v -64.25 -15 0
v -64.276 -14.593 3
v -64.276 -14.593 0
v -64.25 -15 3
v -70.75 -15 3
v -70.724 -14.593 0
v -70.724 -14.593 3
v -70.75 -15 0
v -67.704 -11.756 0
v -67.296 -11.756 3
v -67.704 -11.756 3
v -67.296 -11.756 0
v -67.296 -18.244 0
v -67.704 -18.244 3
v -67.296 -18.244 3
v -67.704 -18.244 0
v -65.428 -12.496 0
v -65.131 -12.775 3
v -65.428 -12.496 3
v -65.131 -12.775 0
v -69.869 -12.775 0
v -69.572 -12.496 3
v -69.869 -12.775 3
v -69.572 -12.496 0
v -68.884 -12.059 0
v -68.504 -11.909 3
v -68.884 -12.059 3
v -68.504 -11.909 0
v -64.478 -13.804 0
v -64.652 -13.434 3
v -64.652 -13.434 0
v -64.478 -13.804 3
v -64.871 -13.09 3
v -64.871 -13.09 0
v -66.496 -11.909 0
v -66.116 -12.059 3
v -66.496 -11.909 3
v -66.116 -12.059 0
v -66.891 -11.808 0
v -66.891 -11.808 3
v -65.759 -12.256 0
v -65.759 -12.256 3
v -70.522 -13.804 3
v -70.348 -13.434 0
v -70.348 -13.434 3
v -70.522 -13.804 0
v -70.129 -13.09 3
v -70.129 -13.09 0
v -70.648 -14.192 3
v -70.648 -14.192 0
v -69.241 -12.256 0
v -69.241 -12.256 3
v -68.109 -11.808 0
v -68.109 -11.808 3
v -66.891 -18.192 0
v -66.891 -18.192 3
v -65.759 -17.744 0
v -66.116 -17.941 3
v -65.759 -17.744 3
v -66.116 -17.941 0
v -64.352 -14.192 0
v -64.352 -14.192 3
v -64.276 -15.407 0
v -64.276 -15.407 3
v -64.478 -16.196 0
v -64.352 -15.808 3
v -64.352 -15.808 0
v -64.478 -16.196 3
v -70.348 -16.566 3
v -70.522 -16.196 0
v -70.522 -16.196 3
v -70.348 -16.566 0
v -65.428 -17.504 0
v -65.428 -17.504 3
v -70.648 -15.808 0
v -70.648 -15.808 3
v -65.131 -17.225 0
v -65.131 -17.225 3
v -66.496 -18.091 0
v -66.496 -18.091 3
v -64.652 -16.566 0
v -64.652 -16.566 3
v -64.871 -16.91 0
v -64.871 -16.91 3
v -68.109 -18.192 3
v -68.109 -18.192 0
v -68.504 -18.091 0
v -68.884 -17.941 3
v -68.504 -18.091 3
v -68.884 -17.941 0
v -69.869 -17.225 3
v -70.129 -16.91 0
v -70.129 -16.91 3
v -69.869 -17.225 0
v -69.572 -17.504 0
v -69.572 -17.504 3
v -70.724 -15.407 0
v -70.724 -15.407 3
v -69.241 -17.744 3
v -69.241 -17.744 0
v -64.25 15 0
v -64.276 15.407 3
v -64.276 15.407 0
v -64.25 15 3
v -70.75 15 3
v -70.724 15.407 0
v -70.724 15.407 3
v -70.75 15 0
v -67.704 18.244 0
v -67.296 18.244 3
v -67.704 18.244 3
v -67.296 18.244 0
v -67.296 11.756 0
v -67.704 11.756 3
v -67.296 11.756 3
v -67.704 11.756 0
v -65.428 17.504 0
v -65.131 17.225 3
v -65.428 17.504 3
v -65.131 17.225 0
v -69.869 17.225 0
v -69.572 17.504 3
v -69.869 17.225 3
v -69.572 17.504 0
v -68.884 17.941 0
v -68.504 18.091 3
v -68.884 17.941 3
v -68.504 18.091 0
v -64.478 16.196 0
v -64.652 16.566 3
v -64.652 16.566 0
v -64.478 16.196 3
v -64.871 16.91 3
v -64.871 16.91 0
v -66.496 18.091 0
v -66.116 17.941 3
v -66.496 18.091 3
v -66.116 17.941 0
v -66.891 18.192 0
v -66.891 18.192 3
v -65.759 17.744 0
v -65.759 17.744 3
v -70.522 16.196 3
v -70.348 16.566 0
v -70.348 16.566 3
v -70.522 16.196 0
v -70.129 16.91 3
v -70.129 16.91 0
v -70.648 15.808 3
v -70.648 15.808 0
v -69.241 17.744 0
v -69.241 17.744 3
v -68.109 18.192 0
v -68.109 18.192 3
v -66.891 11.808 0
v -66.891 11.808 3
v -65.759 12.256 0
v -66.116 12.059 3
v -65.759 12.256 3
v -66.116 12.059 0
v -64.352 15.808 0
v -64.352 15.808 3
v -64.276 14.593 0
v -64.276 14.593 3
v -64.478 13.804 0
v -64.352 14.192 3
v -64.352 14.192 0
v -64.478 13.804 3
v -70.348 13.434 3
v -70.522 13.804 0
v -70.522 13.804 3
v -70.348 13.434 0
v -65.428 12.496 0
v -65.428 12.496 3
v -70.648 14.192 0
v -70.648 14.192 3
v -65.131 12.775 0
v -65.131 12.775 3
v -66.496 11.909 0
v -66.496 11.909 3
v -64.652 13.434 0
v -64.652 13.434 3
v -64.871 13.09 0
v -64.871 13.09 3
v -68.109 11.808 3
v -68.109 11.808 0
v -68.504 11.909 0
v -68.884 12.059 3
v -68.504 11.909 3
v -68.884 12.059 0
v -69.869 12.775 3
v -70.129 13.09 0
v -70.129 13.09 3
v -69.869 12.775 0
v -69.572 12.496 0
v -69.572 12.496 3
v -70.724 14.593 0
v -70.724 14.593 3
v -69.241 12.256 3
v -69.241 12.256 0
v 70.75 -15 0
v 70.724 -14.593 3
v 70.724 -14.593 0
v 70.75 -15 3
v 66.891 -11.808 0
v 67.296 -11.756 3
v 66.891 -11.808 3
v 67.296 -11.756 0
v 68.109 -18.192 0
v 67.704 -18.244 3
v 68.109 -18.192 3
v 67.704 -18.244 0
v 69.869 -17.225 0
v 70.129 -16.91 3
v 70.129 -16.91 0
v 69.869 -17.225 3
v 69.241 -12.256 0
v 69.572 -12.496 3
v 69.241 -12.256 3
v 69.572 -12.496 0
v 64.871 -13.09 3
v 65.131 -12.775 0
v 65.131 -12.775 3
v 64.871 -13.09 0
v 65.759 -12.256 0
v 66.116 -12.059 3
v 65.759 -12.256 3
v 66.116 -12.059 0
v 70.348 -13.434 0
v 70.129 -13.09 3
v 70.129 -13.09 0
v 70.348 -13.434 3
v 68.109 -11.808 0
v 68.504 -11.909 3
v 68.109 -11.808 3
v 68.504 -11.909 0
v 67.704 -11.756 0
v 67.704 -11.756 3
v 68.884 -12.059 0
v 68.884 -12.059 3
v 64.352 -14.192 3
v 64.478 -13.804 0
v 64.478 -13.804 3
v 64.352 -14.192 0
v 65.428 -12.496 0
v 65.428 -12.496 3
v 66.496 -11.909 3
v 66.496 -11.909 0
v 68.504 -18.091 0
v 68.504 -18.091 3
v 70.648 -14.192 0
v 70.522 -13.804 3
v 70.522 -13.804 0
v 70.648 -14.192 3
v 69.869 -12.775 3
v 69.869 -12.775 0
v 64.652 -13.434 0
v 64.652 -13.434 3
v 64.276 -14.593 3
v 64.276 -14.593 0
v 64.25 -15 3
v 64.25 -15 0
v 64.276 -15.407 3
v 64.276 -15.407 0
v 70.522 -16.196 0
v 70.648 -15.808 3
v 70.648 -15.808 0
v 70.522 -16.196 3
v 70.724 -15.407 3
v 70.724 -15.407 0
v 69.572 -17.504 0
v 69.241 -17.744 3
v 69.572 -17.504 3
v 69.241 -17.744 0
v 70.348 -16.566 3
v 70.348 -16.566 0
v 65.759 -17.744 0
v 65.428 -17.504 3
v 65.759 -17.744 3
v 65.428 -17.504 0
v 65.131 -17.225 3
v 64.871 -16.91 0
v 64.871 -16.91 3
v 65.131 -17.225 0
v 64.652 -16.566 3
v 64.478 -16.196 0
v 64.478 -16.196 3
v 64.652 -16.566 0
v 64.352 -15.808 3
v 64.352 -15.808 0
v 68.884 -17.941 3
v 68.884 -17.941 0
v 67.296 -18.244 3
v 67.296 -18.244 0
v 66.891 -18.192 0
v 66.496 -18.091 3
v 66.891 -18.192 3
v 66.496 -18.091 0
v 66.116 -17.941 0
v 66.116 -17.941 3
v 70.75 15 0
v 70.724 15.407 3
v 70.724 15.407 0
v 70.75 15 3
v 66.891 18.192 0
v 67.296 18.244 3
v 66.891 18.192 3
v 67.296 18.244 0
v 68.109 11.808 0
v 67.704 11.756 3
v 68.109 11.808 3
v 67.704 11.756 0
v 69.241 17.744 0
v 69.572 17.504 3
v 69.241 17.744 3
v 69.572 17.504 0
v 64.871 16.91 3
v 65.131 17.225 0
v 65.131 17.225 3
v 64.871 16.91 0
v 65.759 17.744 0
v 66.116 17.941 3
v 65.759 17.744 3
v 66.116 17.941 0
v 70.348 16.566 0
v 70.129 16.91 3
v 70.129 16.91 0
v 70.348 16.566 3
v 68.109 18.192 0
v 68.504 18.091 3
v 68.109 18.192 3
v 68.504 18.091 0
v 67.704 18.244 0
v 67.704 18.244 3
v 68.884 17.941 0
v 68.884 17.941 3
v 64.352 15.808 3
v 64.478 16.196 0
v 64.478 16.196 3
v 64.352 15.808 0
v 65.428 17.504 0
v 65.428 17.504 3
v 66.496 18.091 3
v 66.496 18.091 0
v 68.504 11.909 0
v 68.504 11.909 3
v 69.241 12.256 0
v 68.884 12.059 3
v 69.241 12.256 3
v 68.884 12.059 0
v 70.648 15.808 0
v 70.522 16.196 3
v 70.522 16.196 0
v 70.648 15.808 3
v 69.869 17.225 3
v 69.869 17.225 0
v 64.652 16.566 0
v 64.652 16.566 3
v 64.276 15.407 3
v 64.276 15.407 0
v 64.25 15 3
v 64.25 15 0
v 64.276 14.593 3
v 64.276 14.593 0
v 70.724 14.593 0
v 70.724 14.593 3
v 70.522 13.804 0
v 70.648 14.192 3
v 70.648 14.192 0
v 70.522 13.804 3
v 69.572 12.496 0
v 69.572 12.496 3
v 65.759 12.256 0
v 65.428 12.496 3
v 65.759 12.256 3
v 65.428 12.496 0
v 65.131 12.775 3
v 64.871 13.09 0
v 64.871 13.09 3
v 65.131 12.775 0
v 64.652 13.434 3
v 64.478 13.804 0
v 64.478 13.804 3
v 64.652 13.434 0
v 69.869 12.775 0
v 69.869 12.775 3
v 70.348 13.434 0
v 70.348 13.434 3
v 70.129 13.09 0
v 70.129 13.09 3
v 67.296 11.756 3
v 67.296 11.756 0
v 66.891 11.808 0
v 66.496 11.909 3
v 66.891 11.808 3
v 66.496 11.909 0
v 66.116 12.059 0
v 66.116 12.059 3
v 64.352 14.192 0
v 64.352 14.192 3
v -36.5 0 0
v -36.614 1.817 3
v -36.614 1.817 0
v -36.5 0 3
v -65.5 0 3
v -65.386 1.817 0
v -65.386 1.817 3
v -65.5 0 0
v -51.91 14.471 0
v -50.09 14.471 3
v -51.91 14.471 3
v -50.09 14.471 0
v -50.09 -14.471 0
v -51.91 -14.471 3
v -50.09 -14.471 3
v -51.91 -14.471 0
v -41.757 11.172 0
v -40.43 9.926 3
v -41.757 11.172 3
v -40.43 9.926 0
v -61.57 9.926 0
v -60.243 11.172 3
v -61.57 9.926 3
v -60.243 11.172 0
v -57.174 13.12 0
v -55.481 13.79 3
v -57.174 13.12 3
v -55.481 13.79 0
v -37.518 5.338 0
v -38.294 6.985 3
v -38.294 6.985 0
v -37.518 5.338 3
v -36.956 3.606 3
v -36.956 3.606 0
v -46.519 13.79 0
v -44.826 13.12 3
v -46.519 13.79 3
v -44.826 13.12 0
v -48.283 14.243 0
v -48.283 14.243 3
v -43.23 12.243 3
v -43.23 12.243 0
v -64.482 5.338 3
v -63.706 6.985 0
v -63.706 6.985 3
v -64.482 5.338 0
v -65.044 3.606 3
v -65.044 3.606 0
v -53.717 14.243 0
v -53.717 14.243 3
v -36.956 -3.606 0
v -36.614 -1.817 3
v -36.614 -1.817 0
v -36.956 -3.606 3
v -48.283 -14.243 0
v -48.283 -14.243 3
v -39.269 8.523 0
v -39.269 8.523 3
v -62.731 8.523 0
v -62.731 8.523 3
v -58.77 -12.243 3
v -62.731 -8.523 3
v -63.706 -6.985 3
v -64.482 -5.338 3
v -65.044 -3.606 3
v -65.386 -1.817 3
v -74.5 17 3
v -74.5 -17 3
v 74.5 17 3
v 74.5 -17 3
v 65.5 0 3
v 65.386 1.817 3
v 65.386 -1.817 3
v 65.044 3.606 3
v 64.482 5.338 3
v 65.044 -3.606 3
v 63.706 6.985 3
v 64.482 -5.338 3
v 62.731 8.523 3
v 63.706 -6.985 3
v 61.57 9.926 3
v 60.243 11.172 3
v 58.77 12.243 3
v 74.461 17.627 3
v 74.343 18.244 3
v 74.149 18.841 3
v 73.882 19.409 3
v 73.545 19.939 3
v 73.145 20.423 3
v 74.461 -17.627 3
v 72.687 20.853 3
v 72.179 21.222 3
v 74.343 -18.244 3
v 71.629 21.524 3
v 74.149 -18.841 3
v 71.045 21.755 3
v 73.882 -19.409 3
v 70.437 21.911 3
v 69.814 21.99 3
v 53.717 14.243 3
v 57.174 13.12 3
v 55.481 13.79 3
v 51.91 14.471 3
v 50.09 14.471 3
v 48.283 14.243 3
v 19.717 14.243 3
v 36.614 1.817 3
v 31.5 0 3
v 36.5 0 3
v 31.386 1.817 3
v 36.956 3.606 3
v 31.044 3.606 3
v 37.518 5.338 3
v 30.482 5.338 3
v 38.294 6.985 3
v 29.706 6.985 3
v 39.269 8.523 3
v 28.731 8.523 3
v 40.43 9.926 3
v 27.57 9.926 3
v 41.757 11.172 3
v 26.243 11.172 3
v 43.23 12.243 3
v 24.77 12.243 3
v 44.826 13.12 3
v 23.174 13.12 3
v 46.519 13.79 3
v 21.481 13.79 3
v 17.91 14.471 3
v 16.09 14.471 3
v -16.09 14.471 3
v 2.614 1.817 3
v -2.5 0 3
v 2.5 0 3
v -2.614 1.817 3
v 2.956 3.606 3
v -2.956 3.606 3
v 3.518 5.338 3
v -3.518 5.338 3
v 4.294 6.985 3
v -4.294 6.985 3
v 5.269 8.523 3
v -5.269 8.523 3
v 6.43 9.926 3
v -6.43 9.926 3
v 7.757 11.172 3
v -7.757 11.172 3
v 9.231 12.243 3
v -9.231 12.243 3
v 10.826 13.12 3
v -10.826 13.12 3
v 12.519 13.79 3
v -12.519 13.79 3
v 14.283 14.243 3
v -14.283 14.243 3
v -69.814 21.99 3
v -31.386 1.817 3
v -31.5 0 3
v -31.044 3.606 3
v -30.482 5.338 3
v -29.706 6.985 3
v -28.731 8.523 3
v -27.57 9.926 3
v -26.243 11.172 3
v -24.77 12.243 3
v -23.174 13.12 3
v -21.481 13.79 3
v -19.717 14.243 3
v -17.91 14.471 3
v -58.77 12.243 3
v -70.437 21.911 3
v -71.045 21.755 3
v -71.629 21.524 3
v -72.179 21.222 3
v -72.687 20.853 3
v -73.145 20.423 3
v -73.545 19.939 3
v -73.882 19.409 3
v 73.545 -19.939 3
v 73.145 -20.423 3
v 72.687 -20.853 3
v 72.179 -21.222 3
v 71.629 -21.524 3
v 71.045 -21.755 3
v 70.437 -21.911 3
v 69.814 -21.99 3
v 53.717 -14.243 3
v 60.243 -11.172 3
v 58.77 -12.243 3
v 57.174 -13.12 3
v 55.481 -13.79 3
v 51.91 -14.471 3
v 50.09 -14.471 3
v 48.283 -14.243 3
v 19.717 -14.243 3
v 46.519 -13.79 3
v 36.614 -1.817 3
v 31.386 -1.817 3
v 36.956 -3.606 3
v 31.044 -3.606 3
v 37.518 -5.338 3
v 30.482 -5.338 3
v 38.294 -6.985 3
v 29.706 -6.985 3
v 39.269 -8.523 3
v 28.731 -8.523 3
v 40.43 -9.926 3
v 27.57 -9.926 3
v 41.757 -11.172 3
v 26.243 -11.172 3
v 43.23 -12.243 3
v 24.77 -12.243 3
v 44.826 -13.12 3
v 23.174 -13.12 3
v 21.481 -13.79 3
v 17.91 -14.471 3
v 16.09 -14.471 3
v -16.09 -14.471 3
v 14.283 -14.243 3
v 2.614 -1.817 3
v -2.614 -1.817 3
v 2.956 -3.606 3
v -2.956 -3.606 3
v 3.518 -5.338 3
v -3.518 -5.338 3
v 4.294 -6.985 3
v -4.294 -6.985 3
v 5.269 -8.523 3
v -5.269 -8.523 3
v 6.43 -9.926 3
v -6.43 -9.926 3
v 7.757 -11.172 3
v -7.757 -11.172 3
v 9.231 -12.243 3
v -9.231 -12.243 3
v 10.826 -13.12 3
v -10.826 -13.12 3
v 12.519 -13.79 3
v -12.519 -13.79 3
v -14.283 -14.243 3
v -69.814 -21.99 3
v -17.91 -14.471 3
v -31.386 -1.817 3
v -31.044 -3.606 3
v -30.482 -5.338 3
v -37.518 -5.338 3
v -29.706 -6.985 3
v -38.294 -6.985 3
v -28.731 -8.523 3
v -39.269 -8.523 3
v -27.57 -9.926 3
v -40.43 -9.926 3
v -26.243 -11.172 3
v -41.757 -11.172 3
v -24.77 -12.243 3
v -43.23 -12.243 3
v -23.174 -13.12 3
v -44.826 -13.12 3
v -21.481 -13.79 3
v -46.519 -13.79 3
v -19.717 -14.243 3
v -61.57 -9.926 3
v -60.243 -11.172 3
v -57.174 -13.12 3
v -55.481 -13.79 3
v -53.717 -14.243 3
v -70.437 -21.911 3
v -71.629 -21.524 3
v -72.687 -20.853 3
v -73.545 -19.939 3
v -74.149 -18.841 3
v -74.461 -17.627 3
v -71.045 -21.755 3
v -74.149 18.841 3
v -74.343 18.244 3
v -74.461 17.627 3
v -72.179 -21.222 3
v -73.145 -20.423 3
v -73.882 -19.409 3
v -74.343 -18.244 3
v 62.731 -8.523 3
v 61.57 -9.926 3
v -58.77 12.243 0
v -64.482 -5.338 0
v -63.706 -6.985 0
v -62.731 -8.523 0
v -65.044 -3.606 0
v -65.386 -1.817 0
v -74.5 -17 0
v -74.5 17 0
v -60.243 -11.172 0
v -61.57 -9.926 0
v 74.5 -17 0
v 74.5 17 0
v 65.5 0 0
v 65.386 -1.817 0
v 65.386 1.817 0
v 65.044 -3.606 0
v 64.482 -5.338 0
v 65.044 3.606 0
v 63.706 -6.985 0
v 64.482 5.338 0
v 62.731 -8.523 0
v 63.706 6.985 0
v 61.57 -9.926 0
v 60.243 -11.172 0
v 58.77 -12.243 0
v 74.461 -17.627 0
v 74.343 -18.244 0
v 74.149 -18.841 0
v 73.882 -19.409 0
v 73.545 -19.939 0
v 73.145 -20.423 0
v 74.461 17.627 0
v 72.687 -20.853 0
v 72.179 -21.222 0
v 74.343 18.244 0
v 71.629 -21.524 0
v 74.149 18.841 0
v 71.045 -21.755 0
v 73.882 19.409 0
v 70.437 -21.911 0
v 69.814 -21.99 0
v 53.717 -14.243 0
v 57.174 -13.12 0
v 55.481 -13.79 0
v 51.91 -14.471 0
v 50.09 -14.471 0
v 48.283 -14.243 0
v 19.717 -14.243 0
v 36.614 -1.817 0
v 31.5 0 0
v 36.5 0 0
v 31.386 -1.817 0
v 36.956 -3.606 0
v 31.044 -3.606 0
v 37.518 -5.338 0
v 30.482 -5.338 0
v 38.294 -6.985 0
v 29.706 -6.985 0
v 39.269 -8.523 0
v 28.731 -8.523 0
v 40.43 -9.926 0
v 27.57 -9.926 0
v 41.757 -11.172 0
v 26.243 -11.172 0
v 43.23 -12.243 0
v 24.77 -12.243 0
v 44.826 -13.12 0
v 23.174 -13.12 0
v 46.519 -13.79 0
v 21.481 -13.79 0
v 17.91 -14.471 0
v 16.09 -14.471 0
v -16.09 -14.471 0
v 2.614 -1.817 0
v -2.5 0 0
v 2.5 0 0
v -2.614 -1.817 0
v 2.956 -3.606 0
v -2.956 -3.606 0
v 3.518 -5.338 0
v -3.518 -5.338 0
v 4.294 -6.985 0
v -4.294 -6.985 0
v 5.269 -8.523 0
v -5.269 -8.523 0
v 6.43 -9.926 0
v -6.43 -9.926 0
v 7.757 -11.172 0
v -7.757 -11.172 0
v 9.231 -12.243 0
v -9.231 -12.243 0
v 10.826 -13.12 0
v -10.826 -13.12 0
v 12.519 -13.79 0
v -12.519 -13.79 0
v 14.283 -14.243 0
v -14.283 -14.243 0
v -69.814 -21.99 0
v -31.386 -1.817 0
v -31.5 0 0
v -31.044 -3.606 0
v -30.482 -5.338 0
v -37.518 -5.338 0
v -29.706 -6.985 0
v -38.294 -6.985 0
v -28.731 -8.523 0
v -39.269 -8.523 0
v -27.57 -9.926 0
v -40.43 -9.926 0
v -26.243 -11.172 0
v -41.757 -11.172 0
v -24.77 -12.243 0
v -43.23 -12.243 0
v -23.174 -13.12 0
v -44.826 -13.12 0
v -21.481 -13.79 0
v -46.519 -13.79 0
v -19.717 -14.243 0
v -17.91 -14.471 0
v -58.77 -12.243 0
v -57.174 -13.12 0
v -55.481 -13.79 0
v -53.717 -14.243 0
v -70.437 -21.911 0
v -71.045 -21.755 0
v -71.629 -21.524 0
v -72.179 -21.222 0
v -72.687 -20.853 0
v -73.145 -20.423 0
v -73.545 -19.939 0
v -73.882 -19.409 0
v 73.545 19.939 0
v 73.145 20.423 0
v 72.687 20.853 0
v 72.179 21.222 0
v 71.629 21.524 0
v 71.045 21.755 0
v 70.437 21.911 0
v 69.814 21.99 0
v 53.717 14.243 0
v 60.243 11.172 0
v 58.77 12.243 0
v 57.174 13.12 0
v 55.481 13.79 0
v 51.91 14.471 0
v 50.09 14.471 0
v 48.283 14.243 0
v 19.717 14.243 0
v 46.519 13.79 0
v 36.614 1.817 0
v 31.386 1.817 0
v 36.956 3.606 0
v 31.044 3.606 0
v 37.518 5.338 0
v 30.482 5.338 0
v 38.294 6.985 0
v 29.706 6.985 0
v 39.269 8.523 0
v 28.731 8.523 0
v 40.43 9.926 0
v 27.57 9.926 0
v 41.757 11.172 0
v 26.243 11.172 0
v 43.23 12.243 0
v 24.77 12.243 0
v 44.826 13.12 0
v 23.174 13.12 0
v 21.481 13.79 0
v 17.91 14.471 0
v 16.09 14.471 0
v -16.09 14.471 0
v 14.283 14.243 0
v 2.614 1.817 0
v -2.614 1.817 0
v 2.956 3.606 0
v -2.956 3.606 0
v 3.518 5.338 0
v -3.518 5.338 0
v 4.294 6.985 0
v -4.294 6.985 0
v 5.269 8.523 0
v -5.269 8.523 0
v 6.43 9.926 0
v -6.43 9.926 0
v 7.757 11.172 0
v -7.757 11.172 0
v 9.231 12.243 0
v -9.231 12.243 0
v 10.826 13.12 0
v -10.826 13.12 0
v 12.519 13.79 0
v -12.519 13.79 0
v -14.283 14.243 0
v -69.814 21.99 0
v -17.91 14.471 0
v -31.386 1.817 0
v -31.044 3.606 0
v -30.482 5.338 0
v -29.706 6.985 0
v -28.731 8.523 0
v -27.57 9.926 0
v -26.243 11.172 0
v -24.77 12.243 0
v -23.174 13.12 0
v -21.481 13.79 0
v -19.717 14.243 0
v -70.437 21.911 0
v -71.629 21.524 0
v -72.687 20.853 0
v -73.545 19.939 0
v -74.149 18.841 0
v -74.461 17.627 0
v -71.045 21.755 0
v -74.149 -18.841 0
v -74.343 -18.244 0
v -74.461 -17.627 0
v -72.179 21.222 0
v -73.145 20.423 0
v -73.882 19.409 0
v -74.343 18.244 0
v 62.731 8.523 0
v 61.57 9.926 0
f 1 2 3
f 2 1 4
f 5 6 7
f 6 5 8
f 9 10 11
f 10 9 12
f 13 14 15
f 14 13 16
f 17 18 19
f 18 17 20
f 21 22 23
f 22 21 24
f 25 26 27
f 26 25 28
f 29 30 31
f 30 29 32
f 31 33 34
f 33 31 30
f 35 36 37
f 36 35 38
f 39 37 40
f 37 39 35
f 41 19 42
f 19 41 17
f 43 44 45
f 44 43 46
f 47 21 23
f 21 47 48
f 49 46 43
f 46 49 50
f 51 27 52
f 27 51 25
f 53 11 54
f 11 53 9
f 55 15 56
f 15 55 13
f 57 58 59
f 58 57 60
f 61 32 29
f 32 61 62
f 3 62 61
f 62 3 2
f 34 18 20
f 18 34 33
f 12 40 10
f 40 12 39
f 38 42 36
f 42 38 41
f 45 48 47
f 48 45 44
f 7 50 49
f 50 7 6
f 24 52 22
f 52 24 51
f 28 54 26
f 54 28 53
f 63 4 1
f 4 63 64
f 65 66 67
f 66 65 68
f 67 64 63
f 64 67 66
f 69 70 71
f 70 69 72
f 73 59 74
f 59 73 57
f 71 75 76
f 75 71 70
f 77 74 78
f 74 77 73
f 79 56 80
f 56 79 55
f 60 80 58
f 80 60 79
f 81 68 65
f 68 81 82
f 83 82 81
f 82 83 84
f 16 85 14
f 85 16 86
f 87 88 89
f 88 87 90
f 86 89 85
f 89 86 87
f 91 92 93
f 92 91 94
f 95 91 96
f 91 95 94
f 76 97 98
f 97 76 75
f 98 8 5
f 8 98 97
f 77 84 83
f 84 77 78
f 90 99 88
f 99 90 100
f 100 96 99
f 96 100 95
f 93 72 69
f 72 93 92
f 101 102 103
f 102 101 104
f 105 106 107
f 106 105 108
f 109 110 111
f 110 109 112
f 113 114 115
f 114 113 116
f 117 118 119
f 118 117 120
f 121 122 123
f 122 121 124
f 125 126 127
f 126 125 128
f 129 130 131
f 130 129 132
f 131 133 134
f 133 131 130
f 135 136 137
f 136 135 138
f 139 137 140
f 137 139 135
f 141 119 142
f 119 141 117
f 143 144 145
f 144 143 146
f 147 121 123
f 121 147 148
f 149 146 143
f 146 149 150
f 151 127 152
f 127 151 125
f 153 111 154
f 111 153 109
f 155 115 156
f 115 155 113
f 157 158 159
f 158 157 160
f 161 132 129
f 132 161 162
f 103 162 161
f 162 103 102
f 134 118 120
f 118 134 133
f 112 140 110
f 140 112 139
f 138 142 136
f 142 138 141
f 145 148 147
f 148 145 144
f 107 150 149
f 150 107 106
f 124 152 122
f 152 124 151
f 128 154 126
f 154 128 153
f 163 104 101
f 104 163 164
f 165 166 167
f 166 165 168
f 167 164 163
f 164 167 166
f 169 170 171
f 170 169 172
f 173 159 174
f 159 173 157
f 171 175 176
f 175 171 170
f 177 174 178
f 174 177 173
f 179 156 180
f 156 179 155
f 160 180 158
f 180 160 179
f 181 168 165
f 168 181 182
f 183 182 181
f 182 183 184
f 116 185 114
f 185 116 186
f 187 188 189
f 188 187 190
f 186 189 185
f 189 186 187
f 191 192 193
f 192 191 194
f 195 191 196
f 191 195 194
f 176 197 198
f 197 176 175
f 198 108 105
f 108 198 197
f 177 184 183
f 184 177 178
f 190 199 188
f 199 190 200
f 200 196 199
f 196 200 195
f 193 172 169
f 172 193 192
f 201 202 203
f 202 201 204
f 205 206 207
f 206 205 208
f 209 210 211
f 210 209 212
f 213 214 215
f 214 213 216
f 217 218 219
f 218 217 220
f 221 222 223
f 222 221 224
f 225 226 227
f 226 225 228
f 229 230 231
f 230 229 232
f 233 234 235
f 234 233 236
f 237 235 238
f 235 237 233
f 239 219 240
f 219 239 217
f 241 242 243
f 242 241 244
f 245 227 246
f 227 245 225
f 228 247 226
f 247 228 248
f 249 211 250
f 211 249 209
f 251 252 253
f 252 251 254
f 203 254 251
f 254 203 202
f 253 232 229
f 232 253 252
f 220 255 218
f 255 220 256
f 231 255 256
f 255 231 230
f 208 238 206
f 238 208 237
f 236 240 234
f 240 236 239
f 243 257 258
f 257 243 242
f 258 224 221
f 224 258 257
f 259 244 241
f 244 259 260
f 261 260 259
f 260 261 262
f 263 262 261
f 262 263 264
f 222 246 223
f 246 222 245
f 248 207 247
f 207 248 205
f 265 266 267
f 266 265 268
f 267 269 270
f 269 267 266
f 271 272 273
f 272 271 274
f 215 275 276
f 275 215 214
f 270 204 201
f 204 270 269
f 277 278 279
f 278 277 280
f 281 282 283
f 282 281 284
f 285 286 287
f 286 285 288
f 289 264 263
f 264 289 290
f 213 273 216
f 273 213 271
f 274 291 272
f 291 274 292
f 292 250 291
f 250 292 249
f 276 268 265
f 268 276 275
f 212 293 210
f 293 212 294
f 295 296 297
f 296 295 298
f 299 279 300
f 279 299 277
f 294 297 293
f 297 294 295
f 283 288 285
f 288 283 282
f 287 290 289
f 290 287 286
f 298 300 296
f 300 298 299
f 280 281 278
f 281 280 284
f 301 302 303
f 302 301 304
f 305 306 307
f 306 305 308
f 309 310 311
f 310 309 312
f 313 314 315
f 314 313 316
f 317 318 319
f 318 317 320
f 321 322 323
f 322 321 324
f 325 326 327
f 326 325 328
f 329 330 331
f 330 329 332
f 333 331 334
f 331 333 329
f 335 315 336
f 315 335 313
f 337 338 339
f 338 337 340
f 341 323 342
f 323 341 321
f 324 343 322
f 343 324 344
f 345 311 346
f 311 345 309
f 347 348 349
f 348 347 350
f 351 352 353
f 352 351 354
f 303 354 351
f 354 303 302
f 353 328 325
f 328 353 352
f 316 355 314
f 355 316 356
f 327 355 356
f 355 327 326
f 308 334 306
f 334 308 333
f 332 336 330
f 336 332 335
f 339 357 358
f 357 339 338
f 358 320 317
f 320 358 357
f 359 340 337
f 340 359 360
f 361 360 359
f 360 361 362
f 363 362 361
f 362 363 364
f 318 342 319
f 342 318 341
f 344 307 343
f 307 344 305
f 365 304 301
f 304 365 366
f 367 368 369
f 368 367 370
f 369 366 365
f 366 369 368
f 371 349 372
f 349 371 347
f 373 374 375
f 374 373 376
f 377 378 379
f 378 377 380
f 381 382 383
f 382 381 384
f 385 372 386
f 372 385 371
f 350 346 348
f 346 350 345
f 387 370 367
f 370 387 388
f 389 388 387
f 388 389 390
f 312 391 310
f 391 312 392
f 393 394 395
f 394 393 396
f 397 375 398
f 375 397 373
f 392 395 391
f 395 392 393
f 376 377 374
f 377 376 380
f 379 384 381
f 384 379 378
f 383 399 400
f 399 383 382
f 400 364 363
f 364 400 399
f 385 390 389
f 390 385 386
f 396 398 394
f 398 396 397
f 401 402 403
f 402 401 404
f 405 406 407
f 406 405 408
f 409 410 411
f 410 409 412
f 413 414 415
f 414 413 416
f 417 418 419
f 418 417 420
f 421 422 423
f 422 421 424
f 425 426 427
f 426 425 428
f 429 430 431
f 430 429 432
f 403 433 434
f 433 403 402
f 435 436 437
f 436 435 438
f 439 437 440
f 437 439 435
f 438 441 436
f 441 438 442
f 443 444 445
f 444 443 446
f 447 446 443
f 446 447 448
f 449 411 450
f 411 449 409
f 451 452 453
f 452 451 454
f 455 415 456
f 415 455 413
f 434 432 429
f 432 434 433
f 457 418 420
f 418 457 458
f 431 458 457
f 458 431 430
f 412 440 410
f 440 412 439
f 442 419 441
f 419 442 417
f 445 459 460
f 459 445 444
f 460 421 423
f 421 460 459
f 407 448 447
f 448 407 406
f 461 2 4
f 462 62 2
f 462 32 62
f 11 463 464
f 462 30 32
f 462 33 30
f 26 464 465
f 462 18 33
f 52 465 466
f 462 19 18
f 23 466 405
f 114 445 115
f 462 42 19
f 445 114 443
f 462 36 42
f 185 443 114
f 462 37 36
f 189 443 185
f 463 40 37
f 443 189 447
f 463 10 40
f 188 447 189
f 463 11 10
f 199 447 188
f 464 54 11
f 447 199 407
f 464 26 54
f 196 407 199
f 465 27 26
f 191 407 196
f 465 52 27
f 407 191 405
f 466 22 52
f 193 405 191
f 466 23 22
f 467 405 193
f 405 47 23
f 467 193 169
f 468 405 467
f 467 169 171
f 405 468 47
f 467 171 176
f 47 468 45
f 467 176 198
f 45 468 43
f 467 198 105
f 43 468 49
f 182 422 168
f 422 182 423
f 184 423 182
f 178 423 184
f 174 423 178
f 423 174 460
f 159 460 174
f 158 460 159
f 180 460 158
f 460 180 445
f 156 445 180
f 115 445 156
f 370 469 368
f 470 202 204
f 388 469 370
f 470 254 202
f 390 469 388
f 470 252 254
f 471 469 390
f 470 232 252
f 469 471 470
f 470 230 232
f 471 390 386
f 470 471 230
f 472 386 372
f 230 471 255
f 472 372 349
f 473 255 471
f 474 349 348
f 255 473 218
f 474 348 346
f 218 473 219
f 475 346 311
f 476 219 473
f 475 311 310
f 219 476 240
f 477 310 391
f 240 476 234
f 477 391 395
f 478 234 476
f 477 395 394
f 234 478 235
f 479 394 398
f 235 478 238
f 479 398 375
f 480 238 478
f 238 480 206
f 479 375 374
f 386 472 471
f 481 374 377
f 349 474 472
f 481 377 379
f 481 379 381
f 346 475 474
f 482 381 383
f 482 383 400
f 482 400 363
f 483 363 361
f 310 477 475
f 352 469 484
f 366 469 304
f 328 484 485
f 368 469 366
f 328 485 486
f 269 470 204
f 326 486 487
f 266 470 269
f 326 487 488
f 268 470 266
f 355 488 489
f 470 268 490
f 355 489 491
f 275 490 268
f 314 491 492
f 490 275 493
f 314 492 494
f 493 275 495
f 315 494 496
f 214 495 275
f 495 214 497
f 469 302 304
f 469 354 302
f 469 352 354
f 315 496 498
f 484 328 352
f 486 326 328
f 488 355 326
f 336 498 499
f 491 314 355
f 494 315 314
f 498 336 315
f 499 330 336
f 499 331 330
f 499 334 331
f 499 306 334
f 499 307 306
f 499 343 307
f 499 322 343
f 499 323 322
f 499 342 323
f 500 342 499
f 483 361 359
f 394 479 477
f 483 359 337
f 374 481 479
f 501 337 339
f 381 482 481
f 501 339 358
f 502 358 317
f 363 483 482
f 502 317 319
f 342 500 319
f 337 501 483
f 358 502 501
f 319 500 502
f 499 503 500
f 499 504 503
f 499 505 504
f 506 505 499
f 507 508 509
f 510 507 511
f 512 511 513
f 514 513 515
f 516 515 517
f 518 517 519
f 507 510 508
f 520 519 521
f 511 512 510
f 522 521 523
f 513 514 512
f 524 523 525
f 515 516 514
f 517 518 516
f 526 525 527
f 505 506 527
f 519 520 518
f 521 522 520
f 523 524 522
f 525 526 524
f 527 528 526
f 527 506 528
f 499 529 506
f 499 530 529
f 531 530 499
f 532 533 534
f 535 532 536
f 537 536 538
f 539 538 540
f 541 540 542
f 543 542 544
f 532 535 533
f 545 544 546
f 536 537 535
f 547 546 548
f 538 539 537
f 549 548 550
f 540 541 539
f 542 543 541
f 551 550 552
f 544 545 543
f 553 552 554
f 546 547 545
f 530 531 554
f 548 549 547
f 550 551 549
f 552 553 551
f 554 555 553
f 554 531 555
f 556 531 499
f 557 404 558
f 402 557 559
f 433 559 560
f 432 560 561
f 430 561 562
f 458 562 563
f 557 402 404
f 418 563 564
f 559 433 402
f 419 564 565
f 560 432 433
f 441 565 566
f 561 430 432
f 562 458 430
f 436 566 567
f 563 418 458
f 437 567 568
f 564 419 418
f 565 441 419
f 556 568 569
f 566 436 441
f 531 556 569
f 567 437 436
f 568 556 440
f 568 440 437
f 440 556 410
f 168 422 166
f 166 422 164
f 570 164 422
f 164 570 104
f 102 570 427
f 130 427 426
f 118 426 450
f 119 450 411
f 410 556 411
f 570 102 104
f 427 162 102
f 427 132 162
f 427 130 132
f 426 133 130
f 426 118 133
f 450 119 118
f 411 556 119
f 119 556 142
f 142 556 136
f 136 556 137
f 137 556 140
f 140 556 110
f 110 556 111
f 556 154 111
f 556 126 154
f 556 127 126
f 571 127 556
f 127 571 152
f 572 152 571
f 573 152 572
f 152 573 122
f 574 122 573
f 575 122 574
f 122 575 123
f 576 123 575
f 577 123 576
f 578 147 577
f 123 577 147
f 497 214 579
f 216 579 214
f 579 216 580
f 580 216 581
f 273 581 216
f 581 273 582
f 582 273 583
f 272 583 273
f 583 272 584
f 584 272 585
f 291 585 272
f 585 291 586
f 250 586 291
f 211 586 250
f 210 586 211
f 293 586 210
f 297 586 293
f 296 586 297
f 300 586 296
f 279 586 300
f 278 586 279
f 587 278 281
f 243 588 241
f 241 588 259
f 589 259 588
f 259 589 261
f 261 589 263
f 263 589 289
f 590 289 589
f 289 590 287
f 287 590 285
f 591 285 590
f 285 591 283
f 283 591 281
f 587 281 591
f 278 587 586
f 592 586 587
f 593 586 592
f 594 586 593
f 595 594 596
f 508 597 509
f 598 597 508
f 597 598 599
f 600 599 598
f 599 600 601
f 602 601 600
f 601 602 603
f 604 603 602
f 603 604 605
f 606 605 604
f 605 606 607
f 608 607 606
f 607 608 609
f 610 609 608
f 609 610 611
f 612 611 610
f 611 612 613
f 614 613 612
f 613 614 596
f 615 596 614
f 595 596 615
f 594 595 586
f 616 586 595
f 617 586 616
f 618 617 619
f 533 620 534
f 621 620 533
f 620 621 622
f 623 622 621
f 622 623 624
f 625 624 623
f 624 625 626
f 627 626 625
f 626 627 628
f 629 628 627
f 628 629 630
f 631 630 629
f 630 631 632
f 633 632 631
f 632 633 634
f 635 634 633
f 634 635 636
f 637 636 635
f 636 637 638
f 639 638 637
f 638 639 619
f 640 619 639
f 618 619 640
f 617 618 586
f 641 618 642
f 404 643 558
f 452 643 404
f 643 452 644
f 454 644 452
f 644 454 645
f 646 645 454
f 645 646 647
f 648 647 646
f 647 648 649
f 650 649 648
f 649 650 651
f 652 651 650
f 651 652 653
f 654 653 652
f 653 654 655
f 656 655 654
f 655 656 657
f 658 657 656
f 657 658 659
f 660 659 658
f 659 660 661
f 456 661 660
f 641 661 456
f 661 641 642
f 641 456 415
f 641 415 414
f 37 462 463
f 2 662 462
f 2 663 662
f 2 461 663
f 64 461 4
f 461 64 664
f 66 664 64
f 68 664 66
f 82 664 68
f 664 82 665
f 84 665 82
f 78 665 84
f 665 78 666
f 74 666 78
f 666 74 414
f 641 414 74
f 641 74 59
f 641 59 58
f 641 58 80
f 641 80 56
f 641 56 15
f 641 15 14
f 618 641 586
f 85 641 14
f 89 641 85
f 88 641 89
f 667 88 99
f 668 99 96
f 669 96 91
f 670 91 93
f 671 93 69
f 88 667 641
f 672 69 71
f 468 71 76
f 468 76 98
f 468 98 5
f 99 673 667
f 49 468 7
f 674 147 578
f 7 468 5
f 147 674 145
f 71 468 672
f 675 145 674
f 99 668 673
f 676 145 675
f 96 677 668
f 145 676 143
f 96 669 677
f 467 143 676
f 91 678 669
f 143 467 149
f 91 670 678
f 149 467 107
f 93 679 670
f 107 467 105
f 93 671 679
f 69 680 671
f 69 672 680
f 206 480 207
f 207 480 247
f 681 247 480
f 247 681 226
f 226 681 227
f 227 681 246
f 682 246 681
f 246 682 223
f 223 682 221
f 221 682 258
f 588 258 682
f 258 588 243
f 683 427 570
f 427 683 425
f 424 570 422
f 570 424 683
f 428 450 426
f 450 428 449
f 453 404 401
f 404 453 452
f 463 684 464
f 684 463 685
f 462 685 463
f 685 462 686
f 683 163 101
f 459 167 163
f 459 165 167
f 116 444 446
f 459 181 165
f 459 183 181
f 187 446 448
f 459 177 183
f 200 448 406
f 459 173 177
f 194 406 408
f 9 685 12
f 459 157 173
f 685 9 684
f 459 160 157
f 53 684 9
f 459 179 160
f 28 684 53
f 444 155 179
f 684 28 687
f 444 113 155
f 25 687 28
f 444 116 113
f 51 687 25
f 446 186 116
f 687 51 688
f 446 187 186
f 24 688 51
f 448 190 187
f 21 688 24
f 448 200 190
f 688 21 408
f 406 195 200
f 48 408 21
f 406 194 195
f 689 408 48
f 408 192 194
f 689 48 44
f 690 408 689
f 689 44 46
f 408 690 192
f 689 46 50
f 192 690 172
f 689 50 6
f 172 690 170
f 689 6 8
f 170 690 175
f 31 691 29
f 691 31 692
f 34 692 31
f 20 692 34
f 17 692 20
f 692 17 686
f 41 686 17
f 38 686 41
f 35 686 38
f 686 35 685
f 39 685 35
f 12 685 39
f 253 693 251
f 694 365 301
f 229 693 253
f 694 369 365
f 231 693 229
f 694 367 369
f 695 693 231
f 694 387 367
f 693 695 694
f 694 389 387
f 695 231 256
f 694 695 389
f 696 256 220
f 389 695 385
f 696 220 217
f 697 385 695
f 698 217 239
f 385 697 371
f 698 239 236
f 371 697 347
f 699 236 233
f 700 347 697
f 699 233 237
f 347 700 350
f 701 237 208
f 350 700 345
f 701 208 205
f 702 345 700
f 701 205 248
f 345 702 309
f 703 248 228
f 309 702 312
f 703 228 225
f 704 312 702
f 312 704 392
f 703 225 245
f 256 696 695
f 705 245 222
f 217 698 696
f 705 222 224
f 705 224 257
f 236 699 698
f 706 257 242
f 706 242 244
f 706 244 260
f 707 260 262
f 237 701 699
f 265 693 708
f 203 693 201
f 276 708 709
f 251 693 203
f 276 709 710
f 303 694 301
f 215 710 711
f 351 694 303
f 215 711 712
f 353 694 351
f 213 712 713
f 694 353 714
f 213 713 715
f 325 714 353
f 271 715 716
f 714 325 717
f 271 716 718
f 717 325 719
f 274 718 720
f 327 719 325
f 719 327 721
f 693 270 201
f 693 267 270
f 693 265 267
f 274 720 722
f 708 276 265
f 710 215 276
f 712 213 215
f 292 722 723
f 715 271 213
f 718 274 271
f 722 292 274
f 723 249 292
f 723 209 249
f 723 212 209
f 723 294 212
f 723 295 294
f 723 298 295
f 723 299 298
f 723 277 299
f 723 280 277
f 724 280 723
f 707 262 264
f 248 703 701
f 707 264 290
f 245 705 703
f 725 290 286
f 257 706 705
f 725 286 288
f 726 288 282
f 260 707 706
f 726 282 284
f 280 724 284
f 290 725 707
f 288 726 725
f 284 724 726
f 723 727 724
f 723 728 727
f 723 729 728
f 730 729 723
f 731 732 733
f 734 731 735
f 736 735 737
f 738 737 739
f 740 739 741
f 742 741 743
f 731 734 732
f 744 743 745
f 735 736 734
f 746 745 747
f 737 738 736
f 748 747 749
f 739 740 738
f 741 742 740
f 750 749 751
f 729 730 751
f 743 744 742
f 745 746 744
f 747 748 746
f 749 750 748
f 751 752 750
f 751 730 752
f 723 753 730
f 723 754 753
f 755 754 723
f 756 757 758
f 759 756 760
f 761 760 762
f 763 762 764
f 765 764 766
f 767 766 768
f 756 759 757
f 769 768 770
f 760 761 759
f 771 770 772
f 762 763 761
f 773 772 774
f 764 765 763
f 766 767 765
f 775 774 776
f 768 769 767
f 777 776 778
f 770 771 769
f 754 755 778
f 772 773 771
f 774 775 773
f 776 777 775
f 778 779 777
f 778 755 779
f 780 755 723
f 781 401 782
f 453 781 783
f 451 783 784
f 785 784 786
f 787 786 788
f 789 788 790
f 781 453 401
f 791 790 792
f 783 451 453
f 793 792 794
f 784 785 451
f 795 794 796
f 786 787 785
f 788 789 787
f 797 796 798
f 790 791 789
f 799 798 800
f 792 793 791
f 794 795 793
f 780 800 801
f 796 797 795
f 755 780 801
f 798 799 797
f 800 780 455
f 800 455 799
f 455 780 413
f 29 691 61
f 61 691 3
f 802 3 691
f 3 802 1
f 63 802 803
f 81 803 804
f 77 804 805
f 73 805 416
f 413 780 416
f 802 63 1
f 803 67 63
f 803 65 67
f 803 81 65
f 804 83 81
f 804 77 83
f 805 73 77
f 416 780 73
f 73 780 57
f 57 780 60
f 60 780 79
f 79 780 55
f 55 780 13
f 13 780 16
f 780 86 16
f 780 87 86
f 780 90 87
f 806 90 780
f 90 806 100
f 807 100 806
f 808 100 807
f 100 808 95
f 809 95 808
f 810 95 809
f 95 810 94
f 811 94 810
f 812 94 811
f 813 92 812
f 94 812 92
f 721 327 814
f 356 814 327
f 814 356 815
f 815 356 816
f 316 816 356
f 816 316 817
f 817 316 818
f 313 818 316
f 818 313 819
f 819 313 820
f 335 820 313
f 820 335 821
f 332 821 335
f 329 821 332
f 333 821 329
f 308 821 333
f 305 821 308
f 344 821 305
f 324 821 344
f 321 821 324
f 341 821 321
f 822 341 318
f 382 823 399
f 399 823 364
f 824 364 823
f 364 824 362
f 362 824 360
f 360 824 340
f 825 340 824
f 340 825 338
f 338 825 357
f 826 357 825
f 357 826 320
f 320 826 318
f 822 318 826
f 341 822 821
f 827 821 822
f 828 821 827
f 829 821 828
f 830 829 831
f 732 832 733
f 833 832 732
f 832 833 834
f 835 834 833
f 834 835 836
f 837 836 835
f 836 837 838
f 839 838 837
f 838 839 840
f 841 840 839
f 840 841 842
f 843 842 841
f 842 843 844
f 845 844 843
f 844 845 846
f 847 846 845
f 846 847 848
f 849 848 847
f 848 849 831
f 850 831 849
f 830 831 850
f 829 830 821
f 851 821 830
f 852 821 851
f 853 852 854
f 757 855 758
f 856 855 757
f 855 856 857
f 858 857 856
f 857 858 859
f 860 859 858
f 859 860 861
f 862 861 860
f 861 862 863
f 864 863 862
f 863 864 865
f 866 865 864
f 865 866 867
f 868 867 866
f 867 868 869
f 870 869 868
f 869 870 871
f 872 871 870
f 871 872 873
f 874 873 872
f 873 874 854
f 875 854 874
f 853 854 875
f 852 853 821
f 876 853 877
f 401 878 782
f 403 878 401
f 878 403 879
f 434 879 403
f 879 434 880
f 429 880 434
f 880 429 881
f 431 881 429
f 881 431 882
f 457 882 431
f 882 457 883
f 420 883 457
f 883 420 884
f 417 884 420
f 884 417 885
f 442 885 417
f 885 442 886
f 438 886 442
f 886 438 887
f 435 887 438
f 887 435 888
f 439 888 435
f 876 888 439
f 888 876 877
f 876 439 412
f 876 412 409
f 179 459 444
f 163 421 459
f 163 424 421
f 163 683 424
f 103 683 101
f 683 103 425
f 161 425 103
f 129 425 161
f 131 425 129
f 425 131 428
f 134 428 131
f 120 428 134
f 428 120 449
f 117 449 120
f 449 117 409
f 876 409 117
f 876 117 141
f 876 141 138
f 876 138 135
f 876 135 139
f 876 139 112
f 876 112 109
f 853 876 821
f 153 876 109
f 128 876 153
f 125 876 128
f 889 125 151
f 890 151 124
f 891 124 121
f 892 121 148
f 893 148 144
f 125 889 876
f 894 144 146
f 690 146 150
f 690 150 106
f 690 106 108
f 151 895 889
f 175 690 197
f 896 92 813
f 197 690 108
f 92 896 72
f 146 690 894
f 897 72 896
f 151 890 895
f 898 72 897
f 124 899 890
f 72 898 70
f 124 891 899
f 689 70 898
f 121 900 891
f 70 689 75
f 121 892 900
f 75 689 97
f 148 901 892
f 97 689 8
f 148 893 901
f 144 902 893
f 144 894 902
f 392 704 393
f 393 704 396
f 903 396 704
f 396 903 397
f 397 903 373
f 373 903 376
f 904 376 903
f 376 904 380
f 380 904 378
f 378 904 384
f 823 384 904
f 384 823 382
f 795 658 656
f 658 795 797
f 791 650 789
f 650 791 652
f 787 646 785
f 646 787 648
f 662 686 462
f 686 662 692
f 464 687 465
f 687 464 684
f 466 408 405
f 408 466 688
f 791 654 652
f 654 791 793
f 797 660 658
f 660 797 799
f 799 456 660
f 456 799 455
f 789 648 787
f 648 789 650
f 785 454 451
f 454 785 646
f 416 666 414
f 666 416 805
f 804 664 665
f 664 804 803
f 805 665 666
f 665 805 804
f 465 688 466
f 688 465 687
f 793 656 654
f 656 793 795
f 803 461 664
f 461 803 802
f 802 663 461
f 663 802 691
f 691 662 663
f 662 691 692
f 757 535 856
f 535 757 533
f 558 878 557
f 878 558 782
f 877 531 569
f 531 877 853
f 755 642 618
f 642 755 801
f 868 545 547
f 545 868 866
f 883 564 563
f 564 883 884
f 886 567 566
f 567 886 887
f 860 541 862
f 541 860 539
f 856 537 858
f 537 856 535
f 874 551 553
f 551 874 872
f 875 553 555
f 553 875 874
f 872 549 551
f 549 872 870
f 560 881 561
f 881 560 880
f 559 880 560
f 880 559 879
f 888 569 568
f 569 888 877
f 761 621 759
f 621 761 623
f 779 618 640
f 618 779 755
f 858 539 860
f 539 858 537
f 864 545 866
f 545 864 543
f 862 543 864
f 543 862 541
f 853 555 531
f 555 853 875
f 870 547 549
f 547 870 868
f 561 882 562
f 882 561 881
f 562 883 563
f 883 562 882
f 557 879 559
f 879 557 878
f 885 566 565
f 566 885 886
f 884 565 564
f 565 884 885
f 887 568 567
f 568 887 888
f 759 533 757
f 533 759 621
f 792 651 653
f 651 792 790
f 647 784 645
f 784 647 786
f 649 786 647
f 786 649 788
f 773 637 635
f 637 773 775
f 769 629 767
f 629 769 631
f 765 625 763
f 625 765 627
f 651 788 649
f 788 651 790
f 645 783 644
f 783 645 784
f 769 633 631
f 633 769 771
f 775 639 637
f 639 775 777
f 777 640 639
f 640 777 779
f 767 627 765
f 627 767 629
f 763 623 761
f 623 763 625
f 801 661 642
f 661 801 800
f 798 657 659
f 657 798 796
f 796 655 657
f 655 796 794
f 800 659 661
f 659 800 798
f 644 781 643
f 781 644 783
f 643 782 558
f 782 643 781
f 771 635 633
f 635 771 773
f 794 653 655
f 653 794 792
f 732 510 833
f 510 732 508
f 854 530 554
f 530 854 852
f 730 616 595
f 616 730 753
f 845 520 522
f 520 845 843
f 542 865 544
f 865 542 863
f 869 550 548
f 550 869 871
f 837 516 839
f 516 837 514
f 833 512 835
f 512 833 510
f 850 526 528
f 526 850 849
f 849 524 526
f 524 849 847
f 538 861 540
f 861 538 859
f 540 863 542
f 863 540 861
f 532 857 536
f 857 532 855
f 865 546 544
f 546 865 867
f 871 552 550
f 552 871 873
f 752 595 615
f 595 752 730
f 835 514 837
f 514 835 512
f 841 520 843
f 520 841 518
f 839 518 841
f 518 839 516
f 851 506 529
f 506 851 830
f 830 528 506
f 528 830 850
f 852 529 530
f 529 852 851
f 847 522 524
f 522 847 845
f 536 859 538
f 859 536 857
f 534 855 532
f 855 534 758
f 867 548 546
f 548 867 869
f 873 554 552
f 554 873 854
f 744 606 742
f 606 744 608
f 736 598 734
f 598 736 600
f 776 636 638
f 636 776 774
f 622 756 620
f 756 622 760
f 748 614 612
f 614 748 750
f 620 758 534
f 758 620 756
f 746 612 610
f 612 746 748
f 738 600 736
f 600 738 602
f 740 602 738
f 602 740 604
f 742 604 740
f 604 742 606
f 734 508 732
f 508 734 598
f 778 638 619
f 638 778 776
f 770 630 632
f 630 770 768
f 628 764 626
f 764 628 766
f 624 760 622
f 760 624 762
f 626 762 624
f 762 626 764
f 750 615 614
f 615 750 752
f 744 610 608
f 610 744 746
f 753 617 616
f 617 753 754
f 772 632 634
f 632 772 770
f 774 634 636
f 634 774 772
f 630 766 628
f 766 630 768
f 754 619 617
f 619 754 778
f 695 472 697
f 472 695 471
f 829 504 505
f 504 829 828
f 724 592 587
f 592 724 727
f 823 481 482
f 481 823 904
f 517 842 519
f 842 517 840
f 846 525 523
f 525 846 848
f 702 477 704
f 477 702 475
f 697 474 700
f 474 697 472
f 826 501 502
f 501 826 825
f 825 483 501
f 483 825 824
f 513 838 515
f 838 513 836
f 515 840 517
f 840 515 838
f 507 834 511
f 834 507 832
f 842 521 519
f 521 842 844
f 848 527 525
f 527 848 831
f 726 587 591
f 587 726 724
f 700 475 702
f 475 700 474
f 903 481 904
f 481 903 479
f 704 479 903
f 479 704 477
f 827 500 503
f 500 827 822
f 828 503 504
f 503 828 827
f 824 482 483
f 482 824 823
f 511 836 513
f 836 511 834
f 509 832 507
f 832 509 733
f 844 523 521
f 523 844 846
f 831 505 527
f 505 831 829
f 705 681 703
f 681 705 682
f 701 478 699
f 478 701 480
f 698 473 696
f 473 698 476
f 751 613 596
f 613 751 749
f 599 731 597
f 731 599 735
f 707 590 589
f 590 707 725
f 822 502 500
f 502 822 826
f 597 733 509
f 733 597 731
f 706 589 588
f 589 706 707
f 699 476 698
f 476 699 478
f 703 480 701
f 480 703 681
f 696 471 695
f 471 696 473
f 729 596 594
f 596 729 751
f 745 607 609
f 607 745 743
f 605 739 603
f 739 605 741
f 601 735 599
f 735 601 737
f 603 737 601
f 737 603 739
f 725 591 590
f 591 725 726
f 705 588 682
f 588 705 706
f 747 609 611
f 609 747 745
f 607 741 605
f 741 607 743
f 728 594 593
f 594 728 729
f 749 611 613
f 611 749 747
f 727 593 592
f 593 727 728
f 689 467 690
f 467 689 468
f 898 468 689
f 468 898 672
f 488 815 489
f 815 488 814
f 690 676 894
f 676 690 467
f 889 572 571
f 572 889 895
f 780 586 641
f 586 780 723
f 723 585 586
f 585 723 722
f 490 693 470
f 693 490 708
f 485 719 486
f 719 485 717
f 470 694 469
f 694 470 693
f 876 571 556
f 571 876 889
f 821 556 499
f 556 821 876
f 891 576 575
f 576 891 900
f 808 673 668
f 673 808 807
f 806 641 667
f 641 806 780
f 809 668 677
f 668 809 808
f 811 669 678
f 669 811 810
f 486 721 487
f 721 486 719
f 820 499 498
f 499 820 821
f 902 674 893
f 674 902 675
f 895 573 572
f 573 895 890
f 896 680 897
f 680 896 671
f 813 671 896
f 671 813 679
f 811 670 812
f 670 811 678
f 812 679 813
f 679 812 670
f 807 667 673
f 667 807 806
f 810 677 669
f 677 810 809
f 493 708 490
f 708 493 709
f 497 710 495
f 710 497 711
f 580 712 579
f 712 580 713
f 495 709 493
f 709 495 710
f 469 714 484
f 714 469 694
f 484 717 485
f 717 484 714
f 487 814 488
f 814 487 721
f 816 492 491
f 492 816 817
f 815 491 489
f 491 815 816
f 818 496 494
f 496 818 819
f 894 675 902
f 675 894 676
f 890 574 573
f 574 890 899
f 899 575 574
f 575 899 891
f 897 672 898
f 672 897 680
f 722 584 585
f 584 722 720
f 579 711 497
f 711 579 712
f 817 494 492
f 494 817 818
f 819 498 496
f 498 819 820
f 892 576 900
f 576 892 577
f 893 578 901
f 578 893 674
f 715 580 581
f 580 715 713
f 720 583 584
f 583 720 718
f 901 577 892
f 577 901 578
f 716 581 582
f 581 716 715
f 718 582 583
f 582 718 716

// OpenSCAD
$fn = 50;


difference() {
	union() {
		hull() {
			translate(v = [-69.5000000000, 17.0000000000, 0]) {
				cylinder(h = 3, r = 5);
			}
			translate(v = [69.5000000000, 17.0000000000, 0]) {
				cylinder(h = 3, r = 5);
			}
			translate(v = [-69.5000000000, -17.0000000000, 0]) {
				cylinder(h = 3, r = 5);
			}
			translate(v = [69.5000000000, -17.0000000000, 0]) {
				cylinder(h = 3, r = 5);
			}
		}
	}
	union() {
		#translate(v = [-67.5000000000, -15.0000000000, -100.0000000000]) {
			cylinder(h = 200, r = 3.2500000000);
		}
		#translate(v = [-67.5000000000, 15.0000000000, -100.0000000000]) {
			cylinder(h = 200, r = 3.2500000000);
		}
		#translate(v = [67.5000000000, -15.0000000000, -100.0000000000]) {
			cylinder(h = 200, r = 3.2500000000);
		}
		#translate(v = [67.5000000000, 15.0000000000, -100.0000000000]) {
			cylinder(h = 200, r = 3.2500000000);
		}
		#translate(v = [-51.0000000000, 0, 0]) {
			cylinder(h = 3, r = 14.5000000000);
		}
		#translate(v = [-17.0000000000, 0, 0]) {
			cylinder(h = 3, r = 14.5000000000);
		}
		#translate(v = [17.0000000000, 0, 0]) {
			cylinder(h = 3, r = 14.5000000000);
		}
		#translate(v = [51.0000000000, 0, 0]) {
			cylinder(h = 3, r = 14.5000000000);
		}
	}
}
